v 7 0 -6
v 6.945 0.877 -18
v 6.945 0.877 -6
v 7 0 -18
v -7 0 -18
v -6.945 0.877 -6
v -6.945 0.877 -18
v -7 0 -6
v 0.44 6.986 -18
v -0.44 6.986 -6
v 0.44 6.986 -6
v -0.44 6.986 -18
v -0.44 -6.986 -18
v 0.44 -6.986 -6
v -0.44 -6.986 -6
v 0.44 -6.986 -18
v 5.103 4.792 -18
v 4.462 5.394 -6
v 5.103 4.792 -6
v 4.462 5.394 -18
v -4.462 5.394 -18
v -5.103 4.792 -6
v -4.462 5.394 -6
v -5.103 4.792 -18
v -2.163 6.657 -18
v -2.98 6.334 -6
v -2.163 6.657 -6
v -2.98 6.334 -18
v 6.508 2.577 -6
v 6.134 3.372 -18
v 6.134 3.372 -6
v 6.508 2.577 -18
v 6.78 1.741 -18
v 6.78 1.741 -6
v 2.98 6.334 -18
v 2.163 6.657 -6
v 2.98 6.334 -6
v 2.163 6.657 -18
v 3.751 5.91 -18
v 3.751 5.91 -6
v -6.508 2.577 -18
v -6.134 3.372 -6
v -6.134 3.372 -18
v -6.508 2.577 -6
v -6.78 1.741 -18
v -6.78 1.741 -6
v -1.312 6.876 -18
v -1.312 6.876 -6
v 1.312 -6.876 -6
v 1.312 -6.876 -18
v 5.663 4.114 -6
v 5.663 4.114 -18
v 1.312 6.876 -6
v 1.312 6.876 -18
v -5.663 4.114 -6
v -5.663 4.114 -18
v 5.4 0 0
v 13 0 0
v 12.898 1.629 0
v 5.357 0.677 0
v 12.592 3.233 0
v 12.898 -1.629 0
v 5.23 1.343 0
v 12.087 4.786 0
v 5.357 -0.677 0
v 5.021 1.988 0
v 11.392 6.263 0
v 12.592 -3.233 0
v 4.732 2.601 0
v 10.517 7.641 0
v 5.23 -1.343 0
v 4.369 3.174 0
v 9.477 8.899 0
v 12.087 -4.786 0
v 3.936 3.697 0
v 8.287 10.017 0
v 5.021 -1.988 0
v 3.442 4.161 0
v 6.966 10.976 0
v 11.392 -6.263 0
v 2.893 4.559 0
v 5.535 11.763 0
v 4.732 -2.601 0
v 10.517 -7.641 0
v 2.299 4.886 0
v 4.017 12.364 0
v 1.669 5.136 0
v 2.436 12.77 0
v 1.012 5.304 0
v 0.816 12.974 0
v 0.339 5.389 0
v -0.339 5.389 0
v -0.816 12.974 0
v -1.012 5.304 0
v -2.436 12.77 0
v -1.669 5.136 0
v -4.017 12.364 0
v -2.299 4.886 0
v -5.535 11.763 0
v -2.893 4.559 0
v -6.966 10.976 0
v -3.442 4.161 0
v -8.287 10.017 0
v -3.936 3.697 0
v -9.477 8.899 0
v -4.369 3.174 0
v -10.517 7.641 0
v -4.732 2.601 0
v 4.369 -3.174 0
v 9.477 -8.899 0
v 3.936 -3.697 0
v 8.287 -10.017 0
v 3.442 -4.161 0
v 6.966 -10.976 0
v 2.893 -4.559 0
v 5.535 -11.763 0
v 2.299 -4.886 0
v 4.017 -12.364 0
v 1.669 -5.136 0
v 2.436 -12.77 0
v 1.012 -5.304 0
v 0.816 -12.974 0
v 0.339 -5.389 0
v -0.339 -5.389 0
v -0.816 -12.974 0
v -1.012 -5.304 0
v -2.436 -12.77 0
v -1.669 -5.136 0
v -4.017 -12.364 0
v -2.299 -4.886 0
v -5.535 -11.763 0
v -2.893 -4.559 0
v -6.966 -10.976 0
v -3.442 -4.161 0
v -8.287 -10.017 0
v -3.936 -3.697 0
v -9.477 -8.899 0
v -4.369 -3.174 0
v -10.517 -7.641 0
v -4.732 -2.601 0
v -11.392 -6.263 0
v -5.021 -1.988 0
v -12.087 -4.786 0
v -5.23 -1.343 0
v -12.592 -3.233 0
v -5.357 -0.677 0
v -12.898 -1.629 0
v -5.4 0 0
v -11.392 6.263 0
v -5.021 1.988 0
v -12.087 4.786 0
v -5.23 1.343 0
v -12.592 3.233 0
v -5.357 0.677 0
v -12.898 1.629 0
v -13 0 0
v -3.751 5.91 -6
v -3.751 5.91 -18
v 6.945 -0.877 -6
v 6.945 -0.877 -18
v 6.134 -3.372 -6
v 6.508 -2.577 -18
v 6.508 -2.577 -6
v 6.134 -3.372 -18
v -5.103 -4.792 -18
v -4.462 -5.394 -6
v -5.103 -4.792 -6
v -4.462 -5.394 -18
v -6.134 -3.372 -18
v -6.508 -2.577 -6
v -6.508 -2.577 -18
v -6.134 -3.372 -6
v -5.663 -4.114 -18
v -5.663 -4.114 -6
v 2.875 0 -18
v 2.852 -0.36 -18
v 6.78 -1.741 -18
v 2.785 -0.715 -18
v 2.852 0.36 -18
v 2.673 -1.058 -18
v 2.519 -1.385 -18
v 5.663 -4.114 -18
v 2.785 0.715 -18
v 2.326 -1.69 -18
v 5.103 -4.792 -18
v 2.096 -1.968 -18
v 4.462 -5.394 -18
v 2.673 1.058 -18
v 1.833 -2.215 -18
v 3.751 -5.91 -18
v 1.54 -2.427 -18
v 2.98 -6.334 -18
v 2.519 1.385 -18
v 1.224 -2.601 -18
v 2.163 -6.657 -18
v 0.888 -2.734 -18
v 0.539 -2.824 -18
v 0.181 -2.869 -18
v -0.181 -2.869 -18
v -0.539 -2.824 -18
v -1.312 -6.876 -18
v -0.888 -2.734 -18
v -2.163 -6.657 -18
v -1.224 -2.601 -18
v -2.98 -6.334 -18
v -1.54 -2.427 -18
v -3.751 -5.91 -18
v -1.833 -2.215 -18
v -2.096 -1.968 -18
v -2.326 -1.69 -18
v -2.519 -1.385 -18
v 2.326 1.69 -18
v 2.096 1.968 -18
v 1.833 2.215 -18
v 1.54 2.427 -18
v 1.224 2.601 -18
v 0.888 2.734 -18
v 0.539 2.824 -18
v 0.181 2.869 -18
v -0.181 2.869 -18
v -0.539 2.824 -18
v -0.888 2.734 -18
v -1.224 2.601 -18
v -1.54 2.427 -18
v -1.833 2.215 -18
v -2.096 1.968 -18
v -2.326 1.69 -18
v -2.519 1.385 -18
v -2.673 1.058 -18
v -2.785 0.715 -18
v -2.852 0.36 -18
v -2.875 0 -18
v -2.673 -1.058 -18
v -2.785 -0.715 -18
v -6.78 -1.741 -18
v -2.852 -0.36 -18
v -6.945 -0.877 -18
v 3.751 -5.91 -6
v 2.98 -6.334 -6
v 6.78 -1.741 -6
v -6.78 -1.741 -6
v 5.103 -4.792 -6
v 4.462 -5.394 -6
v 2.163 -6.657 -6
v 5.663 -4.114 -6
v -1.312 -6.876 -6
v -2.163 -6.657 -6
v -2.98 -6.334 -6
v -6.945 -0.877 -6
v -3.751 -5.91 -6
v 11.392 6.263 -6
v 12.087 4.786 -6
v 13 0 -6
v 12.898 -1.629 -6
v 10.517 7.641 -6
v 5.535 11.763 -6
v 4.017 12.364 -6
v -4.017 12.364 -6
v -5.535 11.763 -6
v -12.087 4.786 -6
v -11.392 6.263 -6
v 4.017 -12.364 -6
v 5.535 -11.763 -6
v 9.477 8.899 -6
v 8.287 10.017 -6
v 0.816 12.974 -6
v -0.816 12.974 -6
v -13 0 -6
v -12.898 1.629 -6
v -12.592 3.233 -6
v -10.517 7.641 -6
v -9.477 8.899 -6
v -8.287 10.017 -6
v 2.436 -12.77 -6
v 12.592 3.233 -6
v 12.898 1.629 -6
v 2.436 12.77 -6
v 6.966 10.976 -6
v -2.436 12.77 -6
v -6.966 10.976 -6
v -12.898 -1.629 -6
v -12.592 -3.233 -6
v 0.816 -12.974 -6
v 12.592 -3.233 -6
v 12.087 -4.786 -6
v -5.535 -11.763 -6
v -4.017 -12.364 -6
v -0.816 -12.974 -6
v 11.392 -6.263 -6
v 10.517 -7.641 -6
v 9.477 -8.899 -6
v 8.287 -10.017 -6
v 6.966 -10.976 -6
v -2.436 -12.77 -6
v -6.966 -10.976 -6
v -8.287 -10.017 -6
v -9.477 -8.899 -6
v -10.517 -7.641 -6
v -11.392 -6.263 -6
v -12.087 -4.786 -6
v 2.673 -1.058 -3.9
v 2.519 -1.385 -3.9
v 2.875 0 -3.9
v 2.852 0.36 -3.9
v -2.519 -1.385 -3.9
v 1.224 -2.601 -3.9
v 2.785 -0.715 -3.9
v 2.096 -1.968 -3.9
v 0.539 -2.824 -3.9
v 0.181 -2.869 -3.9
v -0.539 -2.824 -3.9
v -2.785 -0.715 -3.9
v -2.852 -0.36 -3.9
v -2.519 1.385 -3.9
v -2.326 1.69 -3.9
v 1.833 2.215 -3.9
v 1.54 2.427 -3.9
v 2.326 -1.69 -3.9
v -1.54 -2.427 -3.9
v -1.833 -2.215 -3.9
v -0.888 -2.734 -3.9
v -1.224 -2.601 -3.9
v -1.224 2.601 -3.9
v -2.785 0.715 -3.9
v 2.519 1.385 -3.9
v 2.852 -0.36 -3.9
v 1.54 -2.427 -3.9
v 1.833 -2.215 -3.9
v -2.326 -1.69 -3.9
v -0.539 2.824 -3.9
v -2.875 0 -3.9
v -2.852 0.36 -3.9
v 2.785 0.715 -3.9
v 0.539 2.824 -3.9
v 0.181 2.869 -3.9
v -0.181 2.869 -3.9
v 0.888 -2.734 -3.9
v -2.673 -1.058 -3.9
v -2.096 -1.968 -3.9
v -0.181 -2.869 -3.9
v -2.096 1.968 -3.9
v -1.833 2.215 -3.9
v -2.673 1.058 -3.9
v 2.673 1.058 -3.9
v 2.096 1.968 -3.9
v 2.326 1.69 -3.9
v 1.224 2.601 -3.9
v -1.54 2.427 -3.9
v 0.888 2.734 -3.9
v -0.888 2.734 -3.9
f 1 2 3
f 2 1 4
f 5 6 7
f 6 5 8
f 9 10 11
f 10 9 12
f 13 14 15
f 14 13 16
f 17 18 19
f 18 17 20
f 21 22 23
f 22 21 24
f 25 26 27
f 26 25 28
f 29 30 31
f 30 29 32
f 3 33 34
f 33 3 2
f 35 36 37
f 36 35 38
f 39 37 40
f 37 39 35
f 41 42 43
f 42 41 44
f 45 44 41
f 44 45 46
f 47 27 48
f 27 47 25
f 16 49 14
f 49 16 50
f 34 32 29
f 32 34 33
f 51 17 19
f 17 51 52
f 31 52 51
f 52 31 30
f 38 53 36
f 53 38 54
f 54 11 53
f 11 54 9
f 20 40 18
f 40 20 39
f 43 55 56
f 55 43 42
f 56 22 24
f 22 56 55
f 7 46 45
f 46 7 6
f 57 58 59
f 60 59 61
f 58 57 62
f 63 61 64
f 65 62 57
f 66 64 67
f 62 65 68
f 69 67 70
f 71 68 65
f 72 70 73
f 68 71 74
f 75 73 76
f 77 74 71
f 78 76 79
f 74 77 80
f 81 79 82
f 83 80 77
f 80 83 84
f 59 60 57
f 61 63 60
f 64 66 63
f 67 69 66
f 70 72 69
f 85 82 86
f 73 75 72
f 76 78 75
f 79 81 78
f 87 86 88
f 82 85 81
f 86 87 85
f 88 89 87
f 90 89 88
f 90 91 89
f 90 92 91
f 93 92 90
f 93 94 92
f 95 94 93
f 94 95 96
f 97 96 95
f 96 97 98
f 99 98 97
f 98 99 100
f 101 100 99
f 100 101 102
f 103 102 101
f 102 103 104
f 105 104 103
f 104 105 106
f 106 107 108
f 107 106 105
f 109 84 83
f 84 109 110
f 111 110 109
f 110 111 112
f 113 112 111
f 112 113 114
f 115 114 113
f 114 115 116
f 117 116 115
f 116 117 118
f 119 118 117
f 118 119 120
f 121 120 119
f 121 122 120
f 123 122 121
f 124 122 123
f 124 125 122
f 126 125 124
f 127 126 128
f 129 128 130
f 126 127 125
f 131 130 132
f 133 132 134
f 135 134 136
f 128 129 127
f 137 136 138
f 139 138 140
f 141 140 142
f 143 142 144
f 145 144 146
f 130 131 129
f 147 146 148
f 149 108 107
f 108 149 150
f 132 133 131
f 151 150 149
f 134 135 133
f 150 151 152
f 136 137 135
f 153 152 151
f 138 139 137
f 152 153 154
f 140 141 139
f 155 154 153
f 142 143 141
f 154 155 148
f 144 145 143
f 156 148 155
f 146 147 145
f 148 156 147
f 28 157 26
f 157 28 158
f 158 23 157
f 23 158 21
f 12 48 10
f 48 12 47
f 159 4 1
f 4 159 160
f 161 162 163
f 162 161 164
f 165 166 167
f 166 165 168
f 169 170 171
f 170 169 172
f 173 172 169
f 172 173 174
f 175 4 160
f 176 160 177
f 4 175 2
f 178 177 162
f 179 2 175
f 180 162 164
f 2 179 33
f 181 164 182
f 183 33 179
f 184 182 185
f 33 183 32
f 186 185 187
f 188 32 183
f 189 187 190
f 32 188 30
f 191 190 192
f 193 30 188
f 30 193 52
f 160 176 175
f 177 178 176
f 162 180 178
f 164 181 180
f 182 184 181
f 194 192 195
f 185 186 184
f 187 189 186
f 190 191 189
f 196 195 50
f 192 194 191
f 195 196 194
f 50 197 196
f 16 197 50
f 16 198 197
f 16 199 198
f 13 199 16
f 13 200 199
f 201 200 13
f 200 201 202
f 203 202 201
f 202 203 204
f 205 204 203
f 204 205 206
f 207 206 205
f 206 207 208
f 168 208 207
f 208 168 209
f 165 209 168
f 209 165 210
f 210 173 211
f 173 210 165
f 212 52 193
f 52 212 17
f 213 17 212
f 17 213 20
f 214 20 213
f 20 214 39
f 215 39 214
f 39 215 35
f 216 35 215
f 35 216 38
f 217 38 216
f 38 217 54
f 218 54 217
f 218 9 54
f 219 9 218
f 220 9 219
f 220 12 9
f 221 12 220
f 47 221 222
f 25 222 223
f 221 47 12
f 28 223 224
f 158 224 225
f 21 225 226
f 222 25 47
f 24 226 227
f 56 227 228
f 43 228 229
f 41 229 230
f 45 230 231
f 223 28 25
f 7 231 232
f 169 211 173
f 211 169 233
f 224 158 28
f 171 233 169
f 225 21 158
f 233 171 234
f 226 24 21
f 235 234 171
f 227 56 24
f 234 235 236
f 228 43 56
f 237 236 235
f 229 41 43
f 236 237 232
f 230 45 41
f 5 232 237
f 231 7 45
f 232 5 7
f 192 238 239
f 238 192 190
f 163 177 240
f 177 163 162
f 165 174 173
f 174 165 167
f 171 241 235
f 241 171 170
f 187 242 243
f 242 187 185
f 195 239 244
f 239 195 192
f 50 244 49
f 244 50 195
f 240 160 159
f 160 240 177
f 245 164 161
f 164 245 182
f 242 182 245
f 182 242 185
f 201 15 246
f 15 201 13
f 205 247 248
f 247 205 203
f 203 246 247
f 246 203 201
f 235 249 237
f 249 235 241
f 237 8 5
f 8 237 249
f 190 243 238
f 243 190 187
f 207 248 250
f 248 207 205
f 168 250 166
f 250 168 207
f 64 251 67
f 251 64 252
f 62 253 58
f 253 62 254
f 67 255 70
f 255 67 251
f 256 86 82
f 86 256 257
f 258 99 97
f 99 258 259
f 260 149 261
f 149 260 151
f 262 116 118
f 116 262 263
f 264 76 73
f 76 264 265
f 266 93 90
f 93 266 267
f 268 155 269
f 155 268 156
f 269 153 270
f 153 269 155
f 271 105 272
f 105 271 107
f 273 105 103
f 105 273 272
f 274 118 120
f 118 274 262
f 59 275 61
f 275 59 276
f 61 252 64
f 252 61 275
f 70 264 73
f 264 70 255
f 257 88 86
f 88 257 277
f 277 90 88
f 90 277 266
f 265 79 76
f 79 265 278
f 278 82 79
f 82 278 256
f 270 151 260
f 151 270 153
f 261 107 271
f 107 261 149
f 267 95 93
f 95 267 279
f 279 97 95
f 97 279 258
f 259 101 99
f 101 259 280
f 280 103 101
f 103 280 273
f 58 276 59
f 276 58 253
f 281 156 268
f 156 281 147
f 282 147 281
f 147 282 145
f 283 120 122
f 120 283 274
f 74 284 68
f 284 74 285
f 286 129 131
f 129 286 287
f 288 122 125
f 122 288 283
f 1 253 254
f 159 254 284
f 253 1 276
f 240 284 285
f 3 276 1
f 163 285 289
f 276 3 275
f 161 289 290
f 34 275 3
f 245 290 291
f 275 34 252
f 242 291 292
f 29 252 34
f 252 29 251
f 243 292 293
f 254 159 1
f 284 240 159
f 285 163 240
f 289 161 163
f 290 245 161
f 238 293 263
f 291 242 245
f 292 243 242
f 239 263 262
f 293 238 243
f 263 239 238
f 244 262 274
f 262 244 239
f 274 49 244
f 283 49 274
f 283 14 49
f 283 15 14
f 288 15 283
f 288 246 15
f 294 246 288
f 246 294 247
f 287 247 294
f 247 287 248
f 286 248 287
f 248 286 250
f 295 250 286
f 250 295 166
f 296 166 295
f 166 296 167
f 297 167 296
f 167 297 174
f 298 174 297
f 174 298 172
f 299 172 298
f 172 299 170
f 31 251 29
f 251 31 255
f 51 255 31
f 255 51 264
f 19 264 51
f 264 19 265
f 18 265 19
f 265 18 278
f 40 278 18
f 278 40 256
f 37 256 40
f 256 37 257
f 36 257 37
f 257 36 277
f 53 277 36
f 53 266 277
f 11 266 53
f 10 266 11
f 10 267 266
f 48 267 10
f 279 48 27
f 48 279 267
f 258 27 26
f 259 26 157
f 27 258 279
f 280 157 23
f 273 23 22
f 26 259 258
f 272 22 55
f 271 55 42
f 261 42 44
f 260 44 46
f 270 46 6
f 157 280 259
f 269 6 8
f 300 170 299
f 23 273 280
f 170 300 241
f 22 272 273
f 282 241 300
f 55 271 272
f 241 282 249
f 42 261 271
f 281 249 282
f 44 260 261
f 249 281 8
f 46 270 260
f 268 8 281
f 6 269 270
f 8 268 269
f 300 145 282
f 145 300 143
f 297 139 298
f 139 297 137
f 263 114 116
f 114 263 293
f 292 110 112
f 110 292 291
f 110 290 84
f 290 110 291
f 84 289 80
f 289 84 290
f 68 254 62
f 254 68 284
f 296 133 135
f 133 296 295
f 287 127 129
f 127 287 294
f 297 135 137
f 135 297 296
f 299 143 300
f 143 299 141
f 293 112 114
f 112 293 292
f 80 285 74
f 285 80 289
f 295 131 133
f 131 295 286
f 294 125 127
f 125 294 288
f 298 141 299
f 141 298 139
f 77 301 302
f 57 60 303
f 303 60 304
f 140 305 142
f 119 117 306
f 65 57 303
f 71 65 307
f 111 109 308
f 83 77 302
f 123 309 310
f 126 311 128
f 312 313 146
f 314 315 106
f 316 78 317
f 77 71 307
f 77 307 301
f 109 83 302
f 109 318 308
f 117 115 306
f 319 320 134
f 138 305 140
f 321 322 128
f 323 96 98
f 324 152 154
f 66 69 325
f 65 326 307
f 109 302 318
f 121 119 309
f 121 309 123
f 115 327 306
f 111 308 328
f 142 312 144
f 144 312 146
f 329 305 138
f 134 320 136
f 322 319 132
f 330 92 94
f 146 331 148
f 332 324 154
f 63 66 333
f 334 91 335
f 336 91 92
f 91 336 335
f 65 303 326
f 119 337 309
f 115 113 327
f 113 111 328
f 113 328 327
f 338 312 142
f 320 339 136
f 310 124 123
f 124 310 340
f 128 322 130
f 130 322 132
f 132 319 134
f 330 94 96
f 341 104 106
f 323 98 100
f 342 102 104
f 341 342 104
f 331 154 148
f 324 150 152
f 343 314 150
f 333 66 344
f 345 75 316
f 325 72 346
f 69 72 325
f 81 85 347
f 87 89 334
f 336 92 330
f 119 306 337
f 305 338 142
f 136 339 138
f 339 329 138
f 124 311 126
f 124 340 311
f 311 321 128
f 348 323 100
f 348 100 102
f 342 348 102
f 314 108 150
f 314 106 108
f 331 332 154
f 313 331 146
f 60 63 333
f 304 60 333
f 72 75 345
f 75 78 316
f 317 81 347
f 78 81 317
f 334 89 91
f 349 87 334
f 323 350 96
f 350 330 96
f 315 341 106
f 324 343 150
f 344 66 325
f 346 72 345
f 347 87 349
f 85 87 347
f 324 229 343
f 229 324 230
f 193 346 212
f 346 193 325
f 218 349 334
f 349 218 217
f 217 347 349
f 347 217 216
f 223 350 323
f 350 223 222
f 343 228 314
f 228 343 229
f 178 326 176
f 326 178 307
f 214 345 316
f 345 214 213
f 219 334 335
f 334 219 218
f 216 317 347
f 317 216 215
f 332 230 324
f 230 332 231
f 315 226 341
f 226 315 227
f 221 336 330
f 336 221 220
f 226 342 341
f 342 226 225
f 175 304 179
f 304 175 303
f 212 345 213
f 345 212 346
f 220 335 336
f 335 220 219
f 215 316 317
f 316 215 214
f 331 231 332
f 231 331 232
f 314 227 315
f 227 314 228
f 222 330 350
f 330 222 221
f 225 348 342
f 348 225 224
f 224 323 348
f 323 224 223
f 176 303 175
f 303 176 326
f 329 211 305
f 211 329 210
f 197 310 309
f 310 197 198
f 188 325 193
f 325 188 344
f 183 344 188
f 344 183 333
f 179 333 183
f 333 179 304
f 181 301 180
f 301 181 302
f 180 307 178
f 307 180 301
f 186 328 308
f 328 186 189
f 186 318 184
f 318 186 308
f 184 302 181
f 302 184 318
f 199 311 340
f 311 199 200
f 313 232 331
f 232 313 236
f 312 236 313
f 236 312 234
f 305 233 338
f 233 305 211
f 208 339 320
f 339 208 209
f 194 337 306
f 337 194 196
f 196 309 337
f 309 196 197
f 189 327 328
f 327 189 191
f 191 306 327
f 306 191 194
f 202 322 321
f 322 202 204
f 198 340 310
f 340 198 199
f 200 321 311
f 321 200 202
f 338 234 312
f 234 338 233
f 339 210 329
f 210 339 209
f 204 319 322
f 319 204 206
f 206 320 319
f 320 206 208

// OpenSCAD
$fn = 50;


difference() {
	union() {
		translate(v = [0, 0, -18.0000000000]) {
			cylinder(h = 18, r = 7.0000000000);
		}
		translate(v = [0, 0, -6.0000000000]) {
			cylinder(h = 6, r = 13.0000000000);
		}
	}
	union() {
		translate(v = [0, 0, 0]) {
			rotate(a = [0, 0, 0]) {
				difference() {
					union() {
						#translate(v = [0, 0, -18.0000000000]) {
							cylinder(h = 18, r = 2.6000000000);
						}
						#translate(v = [0, 0, -3.9000000000]) {
							cylinder(h = 3.9000000000, r = 7.0000000000, r1 = 2.8750000000, r2 = 5.4000000000);
						}
						#translate(v = [0, 0, -18.0000000000]) {
							cylinder(h = 18, r = 2.8750000000);
						}
						#translate(v = [0, 0, -18.0000000000]) {
							cylinder(h = 18, r = 2.6000000000);
						}
					}
					union();
				}
			}
		}
	}
}
